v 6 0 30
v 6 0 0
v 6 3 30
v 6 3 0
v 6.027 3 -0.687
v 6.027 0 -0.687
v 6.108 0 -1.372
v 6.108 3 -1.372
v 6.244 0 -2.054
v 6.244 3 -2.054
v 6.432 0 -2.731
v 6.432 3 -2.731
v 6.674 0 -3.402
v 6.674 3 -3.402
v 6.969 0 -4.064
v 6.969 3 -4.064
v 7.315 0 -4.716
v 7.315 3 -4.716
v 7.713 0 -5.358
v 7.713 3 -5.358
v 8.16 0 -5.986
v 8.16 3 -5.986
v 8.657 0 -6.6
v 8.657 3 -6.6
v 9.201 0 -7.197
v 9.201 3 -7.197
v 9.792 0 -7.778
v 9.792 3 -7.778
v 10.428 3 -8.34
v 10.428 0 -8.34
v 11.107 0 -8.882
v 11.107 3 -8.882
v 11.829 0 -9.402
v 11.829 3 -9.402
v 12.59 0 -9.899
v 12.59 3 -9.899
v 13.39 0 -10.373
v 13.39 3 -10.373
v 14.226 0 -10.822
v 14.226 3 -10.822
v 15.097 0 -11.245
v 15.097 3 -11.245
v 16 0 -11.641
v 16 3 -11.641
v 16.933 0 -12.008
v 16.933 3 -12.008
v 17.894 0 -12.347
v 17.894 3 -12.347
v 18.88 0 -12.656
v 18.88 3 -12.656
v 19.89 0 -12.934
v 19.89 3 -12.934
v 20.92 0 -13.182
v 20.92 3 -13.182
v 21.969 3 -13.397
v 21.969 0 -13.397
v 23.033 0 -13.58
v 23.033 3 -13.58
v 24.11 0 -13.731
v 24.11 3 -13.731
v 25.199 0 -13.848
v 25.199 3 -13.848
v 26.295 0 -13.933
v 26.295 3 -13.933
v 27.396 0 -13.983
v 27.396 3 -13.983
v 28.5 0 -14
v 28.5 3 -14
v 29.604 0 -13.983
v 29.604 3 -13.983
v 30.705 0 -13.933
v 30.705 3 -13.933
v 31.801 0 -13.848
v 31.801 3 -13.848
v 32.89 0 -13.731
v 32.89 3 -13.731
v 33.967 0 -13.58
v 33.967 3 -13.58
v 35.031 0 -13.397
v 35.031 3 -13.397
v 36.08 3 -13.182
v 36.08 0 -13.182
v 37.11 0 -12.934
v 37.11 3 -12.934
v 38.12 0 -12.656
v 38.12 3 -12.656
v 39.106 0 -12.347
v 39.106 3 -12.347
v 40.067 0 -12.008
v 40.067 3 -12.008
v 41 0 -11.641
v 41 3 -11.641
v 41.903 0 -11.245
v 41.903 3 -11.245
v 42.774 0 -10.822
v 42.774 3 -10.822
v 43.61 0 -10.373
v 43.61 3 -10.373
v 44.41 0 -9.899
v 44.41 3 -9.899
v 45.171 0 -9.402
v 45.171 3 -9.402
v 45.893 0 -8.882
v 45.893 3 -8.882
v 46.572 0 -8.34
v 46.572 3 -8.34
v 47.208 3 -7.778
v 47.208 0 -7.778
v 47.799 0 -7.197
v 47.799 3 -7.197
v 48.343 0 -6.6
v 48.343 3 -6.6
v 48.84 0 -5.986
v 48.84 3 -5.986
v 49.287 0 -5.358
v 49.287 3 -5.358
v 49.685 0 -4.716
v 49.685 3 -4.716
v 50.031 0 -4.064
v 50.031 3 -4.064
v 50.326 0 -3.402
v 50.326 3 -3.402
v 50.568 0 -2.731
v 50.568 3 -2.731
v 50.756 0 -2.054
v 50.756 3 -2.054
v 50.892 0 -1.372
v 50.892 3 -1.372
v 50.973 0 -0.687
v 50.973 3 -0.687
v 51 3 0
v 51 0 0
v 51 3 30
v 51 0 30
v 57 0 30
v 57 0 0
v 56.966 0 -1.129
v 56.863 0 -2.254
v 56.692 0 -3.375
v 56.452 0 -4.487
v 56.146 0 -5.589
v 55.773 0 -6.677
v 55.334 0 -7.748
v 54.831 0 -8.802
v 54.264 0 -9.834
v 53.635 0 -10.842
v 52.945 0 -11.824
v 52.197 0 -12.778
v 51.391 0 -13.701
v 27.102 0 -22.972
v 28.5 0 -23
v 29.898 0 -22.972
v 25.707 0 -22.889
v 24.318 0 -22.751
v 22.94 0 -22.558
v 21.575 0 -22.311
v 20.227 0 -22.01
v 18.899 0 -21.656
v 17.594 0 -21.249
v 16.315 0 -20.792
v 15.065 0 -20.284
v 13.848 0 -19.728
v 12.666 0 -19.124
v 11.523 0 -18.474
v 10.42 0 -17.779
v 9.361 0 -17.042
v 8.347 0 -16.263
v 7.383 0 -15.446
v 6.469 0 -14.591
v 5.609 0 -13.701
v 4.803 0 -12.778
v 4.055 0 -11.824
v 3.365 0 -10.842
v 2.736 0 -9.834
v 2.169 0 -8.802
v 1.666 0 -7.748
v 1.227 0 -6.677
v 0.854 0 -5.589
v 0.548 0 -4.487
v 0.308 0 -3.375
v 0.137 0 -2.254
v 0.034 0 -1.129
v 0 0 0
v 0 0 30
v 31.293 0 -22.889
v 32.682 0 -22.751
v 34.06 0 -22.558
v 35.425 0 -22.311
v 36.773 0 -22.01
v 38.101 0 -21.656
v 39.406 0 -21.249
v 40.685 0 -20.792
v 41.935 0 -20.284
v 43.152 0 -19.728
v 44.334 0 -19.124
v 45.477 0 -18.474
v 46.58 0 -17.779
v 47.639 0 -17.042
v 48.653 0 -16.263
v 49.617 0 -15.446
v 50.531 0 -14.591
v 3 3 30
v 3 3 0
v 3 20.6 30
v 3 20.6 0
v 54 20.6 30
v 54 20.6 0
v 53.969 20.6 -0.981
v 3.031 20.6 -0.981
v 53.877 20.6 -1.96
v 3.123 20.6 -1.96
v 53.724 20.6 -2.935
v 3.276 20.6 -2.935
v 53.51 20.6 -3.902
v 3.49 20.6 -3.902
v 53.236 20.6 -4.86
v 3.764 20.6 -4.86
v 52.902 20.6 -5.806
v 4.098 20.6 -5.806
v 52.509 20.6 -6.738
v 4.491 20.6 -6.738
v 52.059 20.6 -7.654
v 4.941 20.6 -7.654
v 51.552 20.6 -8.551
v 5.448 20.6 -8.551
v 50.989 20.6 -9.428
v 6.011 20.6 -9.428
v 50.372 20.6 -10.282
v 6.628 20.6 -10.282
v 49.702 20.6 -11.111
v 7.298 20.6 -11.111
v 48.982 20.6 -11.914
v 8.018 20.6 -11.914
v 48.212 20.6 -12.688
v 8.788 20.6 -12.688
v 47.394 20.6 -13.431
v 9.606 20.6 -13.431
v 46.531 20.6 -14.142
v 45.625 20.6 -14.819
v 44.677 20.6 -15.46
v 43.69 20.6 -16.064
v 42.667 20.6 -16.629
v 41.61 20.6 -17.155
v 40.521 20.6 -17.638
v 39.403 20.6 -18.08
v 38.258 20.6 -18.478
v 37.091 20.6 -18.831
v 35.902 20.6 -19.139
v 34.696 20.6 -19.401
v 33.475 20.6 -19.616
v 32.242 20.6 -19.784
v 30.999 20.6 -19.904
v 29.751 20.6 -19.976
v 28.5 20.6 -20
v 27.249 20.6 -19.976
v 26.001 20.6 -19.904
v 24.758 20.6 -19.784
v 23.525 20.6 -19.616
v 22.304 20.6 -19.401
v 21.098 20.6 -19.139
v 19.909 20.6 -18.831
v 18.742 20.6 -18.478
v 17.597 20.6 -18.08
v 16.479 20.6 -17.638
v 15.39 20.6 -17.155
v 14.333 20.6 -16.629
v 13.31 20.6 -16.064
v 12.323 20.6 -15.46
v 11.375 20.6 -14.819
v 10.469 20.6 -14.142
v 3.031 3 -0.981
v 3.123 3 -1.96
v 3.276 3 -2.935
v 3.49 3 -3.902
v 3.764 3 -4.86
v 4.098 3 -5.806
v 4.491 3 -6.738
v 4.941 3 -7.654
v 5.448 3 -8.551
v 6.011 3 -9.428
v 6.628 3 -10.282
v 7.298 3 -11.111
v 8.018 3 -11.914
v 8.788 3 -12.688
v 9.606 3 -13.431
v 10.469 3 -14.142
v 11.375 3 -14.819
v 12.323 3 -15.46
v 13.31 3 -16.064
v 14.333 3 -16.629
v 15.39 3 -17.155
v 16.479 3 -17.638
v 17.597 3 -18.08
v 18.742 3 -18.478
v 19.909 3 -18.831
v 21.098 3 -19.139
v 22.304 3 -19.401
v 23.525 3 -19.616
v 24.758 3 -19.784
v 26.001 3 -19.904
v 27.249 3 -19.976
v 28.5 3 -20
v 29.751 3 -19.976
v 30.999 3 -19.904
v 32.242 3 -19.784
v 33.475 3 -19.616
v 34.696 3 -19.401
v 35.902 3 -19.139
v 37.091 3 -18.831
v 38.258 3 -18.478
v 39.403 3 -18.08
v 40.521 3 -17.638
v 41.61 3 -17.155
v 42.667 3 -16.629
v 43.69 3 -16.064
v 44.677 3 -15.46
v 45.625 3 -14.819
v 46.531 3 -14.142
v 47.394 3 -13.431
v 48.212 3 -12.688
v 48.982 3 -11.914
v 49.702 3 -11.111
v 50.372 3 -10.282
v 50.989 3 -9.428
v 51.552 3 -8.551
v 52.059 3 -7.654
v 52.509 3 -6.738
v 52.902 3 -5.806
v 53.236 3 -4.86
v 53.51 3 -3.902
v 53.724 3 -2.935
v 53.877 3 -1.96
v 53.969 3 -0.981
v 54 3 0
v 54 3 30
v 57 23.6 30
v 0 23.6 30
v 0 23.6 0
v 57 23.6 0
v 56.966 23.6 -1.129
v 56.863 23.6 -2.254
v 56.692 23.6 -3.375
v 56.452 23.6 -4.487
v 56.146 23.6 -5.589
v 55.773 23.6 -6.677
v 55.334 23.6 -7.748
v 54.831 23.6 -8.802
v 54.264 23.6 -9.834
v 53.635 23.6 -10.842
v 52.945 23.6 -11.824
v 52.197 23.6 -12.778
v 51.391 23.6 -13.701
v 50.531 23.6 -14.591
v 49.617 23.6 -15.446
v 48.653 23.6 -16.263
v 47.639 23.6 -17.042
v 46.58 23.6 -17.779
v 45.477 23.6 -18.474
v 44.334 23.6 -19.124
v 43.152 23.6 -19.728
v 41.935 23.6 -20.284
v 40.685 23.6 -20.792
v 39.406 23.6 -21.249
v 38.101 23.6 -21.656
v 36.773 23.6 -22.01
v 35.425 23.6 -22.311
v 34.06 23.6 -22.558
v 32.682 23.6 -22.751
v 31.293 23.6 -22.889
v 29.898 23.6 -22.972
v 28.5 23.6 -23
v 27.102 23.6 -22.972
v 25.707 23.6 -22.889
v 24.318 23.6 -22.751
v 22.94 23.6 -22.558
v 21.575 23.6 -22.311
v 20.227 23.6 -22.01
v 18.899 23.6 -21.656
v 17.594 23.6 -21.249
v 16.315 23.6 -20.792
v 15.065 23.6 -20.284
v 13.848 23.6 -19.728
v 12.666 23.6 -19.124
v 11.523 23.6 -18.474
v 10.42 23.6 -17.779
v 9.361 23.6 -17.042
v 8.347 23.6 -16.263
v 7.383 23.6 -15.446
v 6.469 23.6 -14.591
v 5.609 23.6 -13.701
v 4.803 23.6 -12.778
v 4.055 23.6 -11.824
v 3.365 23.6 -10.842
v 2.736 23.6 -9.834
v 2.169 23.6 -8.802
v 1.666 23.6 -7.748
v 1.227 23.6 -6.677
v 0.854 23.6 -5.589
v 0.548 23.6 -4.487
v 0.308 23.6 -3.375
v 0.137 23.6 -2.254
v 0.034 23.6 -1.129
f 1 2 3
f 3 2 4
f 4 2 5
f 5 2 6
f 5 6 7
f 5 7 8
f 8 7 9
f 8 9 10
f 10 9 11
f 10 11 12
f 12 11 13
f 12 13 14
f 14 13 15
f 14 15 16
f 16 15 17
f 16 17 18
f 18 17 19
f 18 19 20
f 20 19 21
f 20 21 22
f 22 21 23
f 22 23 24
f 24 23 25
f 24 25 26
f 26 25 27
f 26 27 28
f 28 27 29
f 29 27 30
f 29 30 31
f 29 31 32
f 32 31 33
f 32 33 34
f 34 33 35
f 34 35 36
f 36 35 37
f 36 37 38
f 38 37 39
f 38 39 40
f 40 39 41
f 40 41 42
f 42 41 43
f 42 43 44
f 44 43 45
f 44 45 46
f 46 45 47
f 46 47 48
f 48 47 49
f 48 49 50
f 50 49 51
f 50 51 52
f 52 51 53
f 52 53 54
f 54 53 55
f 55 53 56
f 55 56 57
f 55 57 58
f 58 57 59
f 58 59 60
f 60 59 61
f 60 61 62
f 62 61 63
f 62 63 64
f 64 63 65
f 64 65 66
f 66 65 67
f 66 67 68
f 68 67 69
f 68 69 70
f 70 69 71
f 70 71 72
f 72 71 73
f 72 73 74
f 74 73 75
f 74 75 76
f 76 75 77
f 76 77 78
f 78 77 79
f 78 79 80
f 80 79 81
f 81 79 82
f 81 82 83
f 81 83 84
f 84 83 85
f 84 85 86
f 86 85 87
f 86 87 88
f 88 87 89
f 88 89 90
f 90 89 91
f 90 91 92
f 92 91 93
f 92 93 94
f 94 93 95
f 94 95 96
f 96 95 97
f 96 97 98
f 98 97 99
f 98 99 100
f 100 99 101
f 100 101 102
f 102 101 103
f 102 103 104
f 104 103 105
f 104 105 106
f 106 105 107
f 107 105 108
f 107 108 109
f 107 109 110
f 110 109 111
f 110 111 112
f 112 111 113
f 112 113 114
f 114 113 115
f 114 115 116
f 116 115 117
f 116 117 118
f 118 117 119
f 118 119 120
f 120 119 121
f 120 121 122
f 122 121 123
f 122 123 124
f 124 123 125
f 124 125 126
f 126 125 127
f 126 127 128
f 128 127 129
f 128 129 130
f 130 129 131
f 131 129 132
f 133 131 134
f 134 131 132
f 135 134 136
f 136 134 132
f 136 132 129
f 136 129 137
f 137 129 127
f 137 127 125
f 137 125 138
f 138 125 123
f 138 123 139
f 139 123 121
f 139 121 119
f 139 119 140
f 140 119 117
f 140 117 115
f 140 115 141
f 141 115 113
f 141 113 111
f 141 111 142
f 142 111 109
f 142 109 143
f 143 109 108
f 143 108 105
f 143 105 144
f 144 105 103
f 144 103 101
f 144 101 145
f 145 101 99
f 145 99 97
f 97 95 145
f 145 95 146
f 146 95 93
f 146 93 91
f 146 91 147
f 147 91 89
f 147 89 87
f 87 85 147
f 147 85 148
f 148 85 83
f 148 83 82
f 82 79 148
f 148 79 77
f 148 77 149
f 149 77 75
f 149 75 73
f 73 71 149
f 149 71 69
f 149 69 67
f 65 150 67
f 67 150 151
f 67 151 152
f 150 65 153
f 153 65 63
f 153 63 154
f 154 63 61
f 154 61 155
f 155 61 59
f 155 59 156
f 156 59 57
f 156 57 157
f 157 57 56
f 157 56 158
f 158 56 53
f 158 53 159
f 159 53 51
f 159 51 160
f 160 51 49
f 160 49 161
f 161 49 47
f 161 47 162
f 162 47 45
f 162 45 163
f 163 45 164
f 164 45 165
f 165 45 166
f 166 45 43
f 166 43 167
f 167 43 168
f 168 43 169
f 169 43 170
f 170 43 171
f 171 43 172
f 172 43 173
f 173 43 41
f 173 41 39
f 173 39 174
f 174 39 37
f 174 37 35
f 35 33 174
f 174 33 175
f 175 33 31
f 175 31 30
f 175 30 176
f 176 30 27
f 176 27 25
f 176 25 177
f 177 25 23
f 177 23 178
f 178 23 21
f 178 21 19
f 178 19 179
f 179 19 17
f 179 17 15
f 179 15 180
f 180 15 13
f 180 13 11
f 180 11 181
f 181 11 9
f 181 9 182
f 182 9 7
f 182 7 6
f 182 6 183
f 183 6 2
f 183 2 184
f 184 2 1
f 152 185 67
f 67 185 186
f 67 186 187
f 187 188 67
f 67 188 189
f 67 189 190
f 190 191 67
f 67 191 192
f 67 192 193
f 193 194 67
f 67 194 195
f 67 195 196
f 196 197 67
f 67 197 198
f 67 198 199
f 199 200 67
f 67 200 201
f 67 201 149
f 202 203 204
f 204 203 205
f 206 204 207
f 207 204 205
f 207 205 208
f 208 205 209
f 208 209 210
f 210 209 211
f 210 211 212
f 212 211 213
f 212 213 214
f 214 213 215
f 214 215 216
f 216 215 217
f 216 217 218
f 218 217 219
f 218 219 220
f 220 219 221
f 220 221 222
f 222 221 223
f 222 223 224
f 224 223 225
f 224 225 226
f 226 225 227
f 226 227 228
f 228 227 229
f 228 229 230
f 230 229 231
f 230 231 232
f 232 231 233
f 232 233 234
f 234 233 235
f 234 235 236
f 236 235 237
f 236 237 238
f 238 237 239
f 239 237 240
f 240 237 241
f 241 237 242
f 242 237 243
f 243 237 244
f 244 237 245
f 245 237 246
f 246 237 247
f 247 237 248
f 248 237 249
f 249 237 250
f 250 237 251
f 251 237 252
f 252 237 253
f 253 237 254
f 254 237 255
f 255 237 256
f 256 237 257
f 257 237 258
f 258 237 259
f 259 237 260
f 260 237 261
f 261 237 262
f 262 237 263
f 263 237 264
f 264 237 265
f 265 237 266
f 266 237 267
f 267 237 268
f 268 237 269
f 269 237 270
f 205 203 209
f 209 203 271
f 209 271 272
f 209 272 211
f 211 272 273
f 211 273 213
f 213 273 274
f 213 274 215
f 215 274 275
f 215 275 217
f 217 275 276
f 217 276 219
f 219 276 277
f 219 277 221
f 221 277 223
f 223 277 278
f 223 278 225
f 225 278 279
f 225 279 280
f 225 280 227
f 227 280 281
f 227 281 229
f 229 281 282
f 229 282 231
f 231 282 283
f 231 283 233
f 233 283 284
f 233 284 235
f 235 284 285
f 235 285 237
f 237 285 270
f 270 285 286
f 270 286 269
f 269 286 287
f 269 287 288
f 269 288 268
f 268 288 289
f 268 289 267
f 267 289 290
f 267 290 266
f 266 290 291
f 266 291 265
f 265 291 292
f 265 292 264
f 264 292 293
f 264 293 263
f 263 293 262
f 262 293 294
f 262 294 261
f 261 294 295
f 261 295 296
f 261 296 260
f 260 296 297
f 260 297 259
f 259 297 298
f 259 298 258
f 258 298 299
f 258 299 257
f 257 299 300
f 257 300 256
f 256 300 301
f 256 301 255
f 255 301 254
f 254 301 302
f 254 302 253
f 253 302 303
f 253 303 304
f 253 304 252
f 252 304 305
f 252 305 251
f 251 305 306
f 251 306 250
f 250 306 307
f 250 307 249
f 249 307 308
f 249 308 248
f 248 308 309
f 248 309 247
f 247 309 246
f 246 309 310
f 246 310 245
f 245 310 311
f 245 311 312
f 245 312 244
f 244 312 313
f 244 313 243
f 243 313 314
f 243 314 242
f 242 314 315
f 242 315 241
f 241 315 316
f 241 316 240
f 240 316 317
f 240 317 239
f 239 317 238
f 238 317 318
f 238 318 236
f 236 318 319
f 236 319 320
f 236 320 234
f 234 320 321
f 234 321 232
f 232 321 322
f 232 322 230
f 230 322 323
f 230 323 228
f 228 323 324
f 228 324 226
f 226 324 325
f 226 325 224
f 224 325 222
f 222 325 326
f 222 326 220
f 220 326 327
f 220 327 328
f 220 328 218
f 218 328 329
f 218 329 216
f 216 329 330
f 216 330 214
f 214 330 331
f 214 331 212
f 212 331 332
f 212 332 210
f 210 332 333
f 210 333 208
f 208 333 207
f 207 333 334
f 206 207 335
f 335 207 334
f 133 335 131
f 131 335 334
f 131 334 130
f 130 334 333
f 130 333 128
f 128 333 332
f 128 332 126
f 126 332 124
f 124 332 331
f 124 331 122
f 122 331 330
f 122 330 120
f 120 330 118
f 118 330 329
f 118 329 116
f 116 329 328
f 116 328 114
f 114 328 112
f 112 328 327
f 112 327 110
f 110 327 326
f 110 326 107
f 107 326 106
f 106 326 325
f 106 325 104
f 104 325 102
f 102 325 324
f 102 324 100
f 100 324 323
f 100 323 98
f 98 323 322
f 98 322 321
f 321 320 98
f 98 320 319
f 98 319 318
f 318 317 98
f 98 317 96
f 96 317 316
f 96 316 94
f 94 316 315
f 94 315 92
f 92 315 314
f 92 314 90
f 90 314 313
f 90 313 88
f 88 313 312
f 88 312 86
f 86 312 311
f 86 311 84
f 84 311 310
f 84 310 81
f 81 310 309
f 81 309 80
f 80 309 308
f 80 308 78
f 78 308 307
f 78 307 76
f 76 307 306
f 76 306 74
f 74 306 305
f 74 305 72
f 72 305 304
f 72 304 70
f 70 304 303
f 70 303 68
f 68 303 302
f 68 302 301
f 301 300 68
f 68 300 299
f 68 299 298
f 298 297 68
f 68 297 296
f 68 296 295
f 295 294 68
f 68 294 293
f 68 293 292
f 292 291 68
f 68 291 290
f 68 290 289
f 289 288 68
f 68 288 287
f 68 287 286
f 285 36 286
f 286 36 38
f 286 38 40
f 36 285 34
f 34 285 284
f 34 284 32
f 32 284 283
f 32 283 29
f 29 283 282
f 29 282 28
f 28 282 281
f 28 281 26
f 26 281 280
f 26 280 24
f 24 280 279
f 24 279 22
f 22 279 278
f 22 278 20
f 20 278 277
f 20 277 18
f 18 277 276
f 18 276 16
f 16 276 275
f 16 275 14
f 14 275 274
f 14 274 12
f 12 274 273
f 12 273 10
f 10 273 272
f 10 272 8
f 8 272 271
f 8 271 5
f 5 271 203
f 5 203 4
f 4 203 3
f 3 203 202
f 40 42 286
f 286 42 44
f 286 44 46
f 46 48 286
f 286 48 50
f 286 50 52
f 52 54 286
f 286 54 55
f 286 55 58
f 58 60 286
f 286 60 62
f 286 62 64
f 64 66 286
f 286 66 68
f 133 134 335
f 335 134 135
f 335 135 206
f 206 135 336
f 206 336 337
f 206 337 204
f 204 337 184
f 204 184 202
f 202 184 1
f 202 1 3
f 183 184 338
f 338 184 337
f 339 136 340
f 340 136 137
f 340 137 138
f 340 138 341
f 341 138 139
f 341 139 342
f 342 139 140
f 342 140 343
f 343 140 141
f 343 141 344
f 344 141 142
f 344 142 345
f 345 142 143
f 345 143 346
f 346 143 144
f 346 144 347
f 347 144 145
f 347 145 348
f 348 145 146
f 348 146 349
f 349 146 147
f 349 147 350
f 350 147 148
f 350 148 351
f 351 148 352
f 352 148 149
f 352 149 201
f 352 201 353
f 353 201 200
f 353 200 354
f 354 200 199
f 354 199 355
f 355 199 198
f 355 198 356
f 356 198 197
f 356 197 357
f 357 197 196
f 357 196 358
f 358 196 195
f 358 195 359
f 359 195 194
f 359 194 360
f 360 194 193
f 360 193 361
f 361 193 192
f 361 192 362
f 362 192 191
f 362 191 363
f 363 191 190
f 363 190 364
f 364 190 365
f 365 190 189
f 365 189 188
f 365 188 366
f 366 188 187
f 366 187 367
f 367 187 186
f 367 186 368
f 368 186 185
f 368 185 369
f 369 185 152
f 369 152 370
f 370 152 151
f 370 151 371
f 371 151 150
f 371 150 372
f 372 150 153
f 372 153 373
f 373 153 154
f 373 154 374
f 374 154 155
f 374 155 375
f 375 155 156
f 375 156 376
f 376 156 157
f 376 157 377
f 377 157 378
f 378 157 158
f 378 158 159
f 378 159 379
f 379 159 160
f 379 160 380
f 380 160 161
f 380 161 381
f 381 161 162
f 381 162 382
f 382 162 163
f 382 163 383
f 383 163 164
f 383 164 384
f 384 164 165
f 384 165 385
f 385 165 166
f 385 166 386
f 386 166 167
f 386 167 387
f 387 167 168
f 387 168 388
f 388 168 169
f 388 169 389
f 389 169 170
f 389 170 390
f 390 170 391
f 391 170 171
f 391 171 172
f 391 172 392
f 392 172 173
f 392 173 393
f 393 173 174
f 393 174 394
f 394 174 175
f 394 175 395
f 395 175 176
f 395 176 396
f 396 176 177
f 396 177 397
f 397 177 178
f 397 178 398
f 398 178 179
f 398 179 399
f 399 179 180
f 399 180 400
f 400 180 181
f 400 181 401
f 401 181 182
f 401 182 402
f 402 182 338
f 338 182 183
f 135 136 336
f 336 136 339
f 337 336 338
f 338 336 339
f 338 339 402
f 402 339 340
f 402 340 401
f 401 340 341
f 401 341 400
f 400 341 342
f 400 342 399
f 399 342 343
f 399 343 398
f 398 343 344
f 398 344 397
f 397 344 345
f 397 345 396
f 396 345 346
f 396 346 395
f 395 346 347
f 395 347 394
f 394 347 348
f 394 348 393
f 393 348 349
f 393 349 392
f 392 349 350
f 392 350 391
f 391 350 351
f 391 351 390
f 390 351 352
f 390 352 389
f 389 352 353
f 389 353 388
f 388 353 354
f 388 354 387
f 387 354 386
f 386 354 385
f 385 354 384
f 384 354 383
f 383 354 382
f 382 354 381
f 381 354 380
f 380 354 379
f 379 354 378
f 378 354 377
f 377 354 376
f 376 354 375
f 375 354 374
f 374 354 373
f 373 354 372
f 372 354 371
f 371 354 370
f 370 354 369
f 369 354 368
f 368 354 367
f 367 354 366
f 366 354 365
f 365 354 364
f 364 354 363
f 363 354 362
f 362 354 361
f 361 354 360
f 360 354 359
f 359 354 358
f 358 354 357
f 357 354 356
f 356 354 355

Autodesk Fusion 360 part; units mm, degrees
sketch "out" plane through (0, 0, 0) normal (0, 1, 0) x (1, 0, 0)
  line L0 (0, 0) -> (57, 0)
  line L1 (57, 0) -> (57, -30)
  line L2 (57, -30) -> (0, -30)
  line L3 (0, -30) -> (0, 0)
  line L4 (0, 0) -> (57, 0) construction
  line L5 (57, 0) -> (57, 23) construction
  line L6 (57, 23) -> (0, 23) construction
  line L7 (0, 23) -> (0, 0) construction
  ellipse E0 centre (28.5, 0) end of major axis (57, 0) minor radius 23
  line L8 (0, 0) -> (57, 0)
  line L9 (28.5, -23) -> (28.5, 23)
  point P0 (28.5, 0)
  dimension "d25" = 57
  dimension "d26" = 30
  dimension "d27" = 57
  dimension "d28" = 23
  dimension "d29" = 46
extrude "Extrude4" add sketch "out" along normal blind 23.6
ref_plane "WorkPlane2" through (0, 3, 0) normal (0, 1, 0) x (0, 0, 1)
sketch "inner" plane through (0, 3, 0) normal (0, 1, 0) x (1, 0, 0)
  line L0 (0, 0) -> (3, 0) construction
  line L1 (3, 0) -> (54, 0)
  line L2 (54, 0) -> (54, -50)
  line L3 (54, -50) -> (3, -50)
  line L4 (3, -50) -> (3, 0)
  line L5 (3, 0) -> (54, 0) construction
  line L6 (54, 0) -> (54, 20) construction
  line L7 (54, 20) -> (3, 20) construction
  line L8 (3, 20) -> (3, 0) construction
  ellipse E0 centre (28.5, 0) end of major axis (54, 0) minor radius 20
  line L9 (3, 0) -> (54, 0)
  line L10 (28.5, -20) -> (28.5, 20)
  point P0 (28.5, 0)
  dimension "d33" = 3
  dimension "d34" = 51
  dimension "d35" = 50
  dimension "d36" = 51
  dimension "d37" = 20
extrude "Extrude5" cut sketch "inner" along normal blind 17.6
sketch "Sketch7" plane through (0, 0, 0) normal (0, 1, 0) x (1, 0, 0)
  line L0 (0, 0) -> (6, 0) construction
  line L1 (6, 0) -> (51, 0)
  line L2 (51, 0) -> (51, -50)
  line L3 (51, -50) -> (6, -50)
  line L4 (6, -50) -> (6, 0)
  line L5 (6, 0) -> (51, 0) construction
  line L6 (51, 0) -> (51, 14) construction
  line L7 (51, 14) -> (6, 14) construction
  line L8 (6, 14) -> (6, 0) construction
  ellipse E0 centre (28.5, 0) end of major axis (51, 0) minor radius 14
  line L9 (6, 0) -> (51, 0)
  line L10 (28.5, -14) -> (28.5, 14)
  point P0 (28.5, 0)
  dimension "d40" = 6
  dimension "d41" = 45
  dimension "d42" = 50
  dimension "d43" = 45
  dimension "d44" = 14
extrude "Extrude6" cut sketch "Sketch7" along normal blind 3
equation "height = 50 mm"
equation "thickness = 3 mm"
equation "roundDiameter = 40 mm"
equation "inner = 17.6 mm"
equation "width = 51 mm"
equation "d25 = width + ( 2 * thickness )"
equation "d26 = height - ( roundDiameter / 2 )"
equation "d27 = width + ( 2 * thickness )"
equation "d28 = ( roundDiameter / 2 ) + thickness"
equation "d29 = roundDiameter + ( thickness * 2 )"
equation "d30 = inner + ( 2 * thickness )"
equation "d32 = thickness"
equation "d33 = thickness"
equation "d34 = width"
equation "d35 = height"
equation "d36 = width"
equation "d37 = roundDiameter / 2"
equation "d38 = inner"
equation "d40 = thickness * 2"
equation "d41 = width - ( 2 * thickness )"
equation "d42 = height"
equation "d43 = width - ( 2 * thickness )"
equation "d44 = roundDiameter / 2 - ( 2 * thickness )"
equation "d45 = thickness"
